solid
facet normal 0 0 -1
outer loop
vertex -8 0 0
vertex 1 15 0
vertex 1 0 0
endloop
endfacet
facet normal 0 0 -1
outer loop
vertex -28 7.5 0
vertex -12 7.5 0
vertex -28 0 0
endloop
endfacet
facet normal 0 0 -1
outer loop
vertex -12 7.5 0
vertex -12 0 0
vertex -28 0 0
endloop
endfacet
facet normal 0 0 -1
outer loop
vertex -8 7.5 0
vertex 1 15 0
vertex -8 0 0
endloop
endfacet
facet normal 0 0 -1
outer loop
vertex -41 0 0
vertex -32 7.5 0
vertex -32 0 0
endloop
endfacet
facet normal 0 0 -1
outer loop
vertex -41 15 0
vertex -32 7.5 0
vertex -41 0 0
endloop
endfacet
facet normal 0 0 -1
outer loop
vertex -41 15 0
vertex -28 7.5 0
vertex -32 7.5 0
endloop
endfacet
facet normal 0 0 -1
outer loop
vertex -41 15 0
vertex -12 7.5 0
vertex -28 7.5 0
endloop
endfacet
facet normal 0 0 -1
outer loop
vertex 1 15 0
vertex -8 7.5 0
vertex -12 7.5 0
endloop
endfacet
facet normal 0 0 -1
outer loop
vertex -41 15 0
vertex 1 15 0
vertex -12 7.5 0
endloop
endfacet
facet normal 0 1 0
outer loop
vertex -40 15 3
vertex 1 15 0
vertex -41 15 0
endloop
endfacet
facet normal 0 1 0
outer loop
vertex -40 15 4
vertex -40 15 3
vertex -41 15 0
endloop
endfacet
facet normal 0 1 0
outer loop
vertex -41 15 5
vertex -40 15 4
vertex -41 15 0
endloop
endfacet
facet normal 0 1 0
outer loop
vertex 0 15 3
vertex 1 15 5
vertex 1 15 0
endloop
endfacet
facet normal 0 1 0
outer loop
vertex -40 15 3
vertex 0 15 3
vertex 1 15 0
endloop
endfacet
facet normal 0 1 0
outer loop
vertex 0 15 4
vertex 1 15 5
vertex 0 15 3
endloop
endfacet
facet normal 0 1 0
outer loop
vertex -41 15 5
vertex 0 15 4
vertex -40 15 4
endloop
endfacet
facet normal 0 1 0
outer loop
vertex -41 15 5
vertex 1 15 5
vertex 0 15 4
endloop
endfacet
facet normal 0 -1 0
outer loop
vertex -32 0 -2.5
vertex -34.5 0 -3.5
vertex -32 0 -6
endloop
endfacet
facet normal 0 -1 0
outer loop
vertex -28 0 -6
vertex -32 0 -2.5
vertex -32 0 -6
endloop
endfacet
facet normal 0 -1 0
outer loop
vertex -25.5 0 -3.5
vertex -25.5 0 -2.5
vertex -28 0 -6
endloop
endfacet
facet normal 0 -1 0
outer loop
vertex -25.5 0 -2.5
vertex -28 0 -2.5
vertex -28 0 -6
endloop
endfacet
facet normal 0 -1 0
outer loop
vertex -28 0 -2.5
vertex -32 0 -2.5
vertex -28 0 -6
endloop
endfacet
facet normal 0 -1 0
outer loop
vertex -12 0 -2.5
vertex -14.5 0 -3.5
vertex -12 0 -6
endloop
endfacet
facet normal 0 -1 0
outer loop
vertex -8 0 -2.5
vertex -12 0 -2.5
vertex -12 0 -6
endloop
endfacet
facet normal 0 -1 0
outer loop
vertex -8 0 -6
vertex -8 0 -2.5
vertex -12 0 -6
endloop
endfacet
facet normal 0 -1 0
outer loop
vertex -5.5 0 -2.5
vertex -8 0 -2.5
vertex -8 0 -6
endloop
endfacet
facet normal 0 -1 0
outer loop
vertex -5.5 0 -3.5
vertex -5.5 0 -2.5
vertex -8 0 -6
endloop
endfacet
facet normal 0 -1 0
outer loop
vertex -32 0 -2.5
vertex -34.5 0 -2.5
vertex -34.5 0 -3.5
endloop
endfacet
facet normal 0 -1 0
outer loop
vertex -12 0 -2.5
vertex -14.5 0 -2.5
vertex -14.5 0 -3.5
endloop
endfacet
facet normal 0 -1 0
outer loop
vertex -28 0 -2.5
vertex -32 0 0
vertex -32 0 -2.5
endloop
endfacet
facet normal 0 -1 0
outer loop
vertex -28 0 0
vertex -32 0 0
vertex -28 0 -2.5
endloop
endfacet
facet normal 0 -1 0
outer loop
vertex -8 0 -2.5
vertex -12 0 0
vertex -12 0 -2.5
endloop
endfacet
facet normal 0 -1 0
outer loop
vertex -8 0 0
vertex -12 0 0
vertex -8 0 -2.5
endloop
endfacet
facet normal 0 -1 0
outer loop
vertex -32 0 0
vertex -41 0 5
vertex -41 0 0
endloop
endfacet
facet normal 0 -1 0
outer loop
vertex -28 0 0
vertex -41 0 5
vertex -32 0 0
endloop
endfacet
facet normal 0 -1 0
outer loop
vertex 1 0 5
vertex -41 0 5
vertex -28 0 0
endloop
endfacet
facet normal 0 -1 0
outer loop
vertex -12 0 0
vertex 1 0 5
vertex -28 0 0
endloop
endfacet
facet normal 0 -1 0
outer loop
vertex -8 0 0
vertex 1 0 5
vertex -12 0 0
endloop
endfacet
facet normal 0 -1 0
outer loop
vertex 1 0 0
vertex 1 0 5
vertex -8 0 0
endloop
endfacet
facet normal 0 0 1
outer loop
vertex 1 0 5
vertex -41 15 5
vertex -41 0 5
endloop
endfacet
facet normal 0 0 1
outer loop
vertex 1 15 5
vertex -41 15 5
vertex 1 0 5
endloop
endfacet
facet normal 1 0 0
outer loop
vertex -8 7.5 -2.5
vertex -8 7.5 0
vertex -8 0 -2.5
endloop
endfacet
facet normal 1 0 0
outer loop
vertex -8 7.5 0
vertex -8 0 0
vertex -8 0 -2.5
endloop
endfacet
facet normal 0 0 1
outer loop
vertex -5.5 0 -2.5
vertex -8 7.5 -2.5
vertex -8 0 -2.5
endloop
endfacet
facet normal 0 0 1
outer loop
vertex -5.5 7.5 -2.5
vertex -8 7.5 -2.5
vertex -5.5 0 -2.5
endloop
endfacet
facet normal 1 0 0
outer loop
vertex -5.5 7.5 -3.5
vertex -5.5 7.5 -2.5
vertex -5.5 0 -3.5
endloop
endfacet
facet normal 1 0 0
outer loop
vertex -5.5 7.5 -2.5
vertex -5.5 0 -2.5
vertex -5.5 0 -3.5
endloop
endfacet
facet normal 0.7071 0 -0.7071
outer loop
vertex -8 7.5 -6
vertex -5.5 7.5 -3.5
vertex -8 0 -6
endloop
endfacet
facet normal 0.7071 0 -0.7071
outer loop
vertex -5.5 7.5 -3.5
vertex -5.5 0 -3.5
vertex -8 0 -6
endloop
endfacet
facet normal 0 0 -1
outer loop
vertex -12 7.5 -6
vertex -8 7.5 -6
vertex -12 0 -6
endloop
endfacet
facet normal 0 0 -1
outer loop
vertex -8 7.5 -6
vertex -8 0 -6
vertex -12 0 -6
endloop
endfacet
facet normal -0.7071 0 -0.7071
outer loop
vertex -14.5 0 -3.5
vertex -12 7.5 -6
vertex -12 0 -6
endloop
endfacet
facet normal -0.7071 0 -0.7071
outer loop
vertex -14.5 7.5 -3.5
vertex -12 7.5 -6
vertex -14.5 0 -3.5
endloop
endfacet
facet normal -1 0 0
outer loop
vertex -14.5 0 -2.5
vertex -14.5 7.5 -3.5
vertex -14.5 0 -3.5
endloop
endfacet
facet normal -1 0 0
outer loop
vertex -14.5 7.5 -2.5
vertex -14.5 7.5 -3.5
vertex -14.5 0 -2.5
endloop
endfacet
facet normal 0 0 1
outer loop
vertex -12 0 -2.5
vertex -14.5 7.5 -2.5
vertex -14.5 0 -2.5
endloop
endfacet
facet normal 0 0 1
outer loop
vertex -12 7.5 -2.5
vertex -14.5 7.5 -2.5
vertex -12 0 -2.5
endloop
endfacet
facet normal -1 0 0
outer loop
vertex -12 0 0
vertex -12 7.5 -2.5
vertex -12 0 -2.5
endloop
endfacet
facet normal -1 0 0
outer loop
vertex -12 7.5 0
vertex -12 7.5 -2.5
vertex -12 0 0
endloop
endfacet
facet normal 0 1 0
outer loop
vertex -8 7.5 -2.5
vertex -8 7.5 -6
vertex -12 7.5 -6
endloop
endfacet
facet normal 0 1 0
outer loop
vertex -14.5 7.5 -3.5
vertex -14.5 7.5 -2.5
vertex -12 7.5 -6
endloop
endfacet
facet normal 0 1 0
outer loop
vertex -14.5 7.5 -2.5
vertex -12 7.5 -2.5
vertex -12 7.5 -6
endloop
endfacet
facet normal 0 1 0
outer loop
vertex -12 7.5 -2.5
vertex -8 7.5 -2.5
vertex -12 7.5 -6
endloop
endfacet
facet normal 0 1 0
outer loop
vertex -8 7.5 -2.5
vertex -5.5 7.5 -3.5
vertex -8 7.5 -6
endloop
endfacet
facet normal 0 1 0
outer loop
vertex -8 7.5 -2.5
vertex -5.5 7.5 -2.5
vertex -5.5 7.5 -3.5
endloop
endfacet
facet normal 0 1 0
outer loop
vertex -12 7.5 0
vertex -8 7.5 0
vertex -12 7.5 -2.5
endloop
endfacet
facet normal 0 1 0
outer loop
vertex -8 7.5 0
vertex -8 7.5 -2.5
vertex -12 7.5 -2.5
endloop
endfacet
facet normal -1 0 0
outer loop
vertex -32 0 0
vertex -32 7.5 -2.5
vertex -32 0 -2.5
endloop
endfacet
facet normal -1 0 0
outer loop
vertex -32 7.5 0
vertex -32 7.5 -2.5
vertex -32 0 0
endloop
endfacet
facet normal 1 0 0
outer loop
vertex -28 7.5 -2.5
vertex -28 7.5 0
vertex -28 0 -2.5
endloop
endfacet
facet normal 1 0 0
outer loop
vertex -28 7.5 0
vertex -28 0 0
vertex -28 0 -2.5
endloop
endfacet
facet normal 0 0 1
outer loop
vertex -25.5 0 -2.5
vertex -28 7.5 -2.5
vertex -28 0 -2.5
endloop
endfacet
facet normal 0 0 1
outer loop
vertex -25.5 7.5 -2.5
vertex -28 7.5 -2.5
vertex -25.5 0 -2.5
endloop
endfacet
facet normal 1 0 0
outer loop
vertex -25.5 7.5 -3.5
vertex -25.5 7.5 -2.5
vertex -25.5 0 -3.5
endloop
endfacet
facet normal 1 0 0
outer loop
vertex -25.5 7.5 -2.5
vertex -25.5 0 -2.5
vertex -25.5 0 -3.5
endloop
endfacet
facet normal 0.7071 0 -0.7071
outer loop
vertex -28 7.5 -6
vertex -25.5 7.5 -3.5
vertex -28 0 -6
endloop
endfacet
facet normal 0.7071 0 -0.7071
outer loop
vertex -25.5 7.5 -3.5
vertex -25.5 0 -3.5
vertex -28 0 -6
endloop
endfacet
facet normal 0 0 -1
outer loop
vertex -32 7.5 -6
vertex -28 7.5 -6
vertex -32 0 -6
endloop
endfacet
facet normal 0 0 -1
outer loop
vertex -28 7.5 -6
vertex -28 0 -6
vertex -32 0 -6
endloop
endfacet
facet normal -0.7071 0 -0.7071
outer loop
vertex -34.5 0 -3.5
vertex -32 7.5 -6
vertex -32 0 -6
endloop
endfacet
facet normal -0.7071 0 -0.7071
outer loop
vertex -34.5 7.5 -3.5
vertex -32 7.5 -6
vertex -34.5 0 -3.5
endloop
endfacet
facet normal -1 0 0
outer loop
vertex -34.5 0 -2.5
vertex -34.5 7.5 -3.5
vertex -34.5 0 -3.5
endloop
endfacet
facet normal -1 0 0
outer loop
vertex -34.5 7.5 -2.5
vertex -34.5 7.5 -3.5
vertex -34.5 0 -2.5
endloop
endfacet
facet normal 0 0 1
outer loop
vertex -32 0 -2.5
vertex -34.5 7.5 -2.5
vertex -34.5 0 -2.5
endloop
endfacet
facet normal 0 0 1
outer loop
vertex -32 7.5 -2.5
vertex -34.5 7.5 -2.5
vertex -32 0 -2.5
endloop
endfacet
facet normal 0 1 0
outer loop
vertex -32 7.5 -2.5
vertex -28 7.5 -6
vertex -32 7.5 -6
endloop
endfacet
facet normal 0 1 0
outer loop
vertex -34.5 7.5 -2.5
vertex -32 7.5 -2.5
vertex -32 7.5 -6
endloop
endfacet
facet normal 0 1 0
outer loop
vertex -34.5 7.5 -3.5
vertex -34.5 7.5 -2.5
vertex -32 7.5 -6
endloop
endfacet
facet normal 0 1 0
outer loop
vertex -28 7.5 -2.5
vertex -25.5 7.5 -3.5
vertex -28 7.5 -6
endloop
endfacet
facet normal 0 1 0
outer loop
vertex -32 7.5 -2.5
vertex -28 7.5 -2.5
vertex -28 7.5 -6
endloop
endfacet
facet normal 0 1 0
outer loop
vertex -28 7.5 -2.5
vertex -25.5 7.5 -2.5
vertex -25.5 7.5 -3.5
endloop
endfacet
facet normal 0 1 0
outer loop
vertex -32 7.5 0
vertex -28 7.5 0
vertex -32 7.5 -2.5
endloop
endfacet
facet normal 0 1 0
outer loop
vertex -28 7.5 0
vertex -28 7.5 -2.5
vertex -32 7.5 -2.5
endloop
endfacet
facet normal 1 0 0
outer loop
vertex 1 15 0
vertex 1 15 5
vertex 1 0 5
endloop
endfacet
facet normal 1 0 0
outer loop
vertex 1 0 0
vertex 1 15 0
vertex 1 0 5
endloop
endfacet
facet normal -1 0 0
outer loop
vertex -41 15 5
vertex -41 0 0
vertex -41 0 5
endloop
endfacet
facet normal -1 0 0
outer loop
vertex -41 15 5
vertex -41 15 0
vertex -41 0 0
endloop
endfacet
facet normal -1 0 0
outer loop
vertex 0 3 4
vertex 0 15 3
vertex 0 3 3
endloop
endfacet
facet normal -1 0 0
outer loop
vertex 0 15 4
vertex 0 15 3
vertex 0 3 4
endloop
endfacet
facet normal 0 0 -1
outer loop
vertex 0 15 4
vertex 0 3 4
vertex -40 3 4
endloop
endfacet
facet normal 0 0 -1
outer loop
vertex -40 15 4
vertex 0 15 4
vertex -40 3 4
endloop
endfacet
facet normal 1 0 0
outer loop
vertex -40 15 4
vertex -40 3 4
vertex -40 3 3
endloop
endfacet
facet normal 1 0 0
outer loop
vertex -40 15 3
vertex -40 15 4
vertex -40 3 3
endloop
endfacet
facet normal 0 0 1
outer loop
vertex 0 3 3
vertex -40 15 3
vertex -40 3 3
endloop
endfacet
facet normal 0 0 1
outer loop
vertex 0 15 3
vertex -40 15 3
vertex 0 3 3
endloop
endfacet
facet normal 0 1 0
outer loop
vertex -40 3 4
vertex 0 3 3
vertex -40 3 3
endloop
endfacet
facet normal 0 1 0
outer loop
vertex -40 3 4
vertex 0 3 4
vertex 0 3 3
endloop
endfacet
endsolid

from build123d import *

# Parameters (mm, degrees)
SKETCH1_W           = 40
SKETCH1_H           = 15
BOSS_EXTRUDE1_DEPTH = 5
BOSS_EXTRUDE2_DEPTH = 7.5
SKETCH3_W           = 5
SKETCH3_H           = 15
BOSS_EXTRUDE3_DEPTH = 1
SKETCH4_W           = 40
SKETCH4_H           = 1
CUT_EXTRUDE1_DEPTH  = 12


with BuildPart() as part:
    # Sketch1 → Boss-Extrude1 (new body)
    with BuildSketch(Plane.XY):
        with Locations((-20, 7.5)):
            Rectangle(SKETCH1_W, SKETCH1_H)
    extrude(amount=BOSS_EXTRUDE1_DEPTH)

    # Sketch2 → Boss-Extrude2 (add)
    with BuildSketch(Plane.XZ):
        Polygon((-8, 0), (-12, 0), (-12, -2.5), (-14.5, -2.5), (-14.5, -3.5), (-12, -6), (-8, -6), (-5.5, -3.5), (-5.5, -2.5), (-8, -2.5), align=None)
    boss_extrude2 = extrude(amount=-BOSS_EXTRUDE2_DEPTH)

    # Mirror1: Boss-Extrude2 across plane
    add(boss_extrude2.mirror(Plane(origin=(-20, 0, 0), x_dir=(0, 0, 1), z_dir=(1, 0, 0))))

    # Sketch3 → Boss-Extrude3 (add)
    with BuildSketch(Plane(origin=(0, 0, 0), x_dir=(0, 0, -1), z_dir=(1, 0, 0))):
        with Locations((-2.5, 7.5)):
            Rectangle(SKETCH3_W, SKETCH3_H)
    boss_extrude3 = extrude(amount=BOSS_EXTRUDE3_DEPTH)

    # Mirror2: Boss-Extrude3 across plane
    add(boss_extrude3.mirror(Plane(origin=(-20, 0, 0), x_dir=(0, 0, 1), z_dir=(1, 0, 0))))

    # Sketch4 → Cut-Extrude1 (cut)
    with BuildSketch(Plane(origin=(0, 15, 0), x_dir=(1, 0, 0), z_dir=(0, 1, 0))):
        with Locations((-20, -3.5)):
            Rectangle(SKETCH4_W, SKETCH4_H)
    extrude(amount=-CUT_EXTRUDE1_DEPTH, mode=Mode.SUBTRACT)


solid = part.part
